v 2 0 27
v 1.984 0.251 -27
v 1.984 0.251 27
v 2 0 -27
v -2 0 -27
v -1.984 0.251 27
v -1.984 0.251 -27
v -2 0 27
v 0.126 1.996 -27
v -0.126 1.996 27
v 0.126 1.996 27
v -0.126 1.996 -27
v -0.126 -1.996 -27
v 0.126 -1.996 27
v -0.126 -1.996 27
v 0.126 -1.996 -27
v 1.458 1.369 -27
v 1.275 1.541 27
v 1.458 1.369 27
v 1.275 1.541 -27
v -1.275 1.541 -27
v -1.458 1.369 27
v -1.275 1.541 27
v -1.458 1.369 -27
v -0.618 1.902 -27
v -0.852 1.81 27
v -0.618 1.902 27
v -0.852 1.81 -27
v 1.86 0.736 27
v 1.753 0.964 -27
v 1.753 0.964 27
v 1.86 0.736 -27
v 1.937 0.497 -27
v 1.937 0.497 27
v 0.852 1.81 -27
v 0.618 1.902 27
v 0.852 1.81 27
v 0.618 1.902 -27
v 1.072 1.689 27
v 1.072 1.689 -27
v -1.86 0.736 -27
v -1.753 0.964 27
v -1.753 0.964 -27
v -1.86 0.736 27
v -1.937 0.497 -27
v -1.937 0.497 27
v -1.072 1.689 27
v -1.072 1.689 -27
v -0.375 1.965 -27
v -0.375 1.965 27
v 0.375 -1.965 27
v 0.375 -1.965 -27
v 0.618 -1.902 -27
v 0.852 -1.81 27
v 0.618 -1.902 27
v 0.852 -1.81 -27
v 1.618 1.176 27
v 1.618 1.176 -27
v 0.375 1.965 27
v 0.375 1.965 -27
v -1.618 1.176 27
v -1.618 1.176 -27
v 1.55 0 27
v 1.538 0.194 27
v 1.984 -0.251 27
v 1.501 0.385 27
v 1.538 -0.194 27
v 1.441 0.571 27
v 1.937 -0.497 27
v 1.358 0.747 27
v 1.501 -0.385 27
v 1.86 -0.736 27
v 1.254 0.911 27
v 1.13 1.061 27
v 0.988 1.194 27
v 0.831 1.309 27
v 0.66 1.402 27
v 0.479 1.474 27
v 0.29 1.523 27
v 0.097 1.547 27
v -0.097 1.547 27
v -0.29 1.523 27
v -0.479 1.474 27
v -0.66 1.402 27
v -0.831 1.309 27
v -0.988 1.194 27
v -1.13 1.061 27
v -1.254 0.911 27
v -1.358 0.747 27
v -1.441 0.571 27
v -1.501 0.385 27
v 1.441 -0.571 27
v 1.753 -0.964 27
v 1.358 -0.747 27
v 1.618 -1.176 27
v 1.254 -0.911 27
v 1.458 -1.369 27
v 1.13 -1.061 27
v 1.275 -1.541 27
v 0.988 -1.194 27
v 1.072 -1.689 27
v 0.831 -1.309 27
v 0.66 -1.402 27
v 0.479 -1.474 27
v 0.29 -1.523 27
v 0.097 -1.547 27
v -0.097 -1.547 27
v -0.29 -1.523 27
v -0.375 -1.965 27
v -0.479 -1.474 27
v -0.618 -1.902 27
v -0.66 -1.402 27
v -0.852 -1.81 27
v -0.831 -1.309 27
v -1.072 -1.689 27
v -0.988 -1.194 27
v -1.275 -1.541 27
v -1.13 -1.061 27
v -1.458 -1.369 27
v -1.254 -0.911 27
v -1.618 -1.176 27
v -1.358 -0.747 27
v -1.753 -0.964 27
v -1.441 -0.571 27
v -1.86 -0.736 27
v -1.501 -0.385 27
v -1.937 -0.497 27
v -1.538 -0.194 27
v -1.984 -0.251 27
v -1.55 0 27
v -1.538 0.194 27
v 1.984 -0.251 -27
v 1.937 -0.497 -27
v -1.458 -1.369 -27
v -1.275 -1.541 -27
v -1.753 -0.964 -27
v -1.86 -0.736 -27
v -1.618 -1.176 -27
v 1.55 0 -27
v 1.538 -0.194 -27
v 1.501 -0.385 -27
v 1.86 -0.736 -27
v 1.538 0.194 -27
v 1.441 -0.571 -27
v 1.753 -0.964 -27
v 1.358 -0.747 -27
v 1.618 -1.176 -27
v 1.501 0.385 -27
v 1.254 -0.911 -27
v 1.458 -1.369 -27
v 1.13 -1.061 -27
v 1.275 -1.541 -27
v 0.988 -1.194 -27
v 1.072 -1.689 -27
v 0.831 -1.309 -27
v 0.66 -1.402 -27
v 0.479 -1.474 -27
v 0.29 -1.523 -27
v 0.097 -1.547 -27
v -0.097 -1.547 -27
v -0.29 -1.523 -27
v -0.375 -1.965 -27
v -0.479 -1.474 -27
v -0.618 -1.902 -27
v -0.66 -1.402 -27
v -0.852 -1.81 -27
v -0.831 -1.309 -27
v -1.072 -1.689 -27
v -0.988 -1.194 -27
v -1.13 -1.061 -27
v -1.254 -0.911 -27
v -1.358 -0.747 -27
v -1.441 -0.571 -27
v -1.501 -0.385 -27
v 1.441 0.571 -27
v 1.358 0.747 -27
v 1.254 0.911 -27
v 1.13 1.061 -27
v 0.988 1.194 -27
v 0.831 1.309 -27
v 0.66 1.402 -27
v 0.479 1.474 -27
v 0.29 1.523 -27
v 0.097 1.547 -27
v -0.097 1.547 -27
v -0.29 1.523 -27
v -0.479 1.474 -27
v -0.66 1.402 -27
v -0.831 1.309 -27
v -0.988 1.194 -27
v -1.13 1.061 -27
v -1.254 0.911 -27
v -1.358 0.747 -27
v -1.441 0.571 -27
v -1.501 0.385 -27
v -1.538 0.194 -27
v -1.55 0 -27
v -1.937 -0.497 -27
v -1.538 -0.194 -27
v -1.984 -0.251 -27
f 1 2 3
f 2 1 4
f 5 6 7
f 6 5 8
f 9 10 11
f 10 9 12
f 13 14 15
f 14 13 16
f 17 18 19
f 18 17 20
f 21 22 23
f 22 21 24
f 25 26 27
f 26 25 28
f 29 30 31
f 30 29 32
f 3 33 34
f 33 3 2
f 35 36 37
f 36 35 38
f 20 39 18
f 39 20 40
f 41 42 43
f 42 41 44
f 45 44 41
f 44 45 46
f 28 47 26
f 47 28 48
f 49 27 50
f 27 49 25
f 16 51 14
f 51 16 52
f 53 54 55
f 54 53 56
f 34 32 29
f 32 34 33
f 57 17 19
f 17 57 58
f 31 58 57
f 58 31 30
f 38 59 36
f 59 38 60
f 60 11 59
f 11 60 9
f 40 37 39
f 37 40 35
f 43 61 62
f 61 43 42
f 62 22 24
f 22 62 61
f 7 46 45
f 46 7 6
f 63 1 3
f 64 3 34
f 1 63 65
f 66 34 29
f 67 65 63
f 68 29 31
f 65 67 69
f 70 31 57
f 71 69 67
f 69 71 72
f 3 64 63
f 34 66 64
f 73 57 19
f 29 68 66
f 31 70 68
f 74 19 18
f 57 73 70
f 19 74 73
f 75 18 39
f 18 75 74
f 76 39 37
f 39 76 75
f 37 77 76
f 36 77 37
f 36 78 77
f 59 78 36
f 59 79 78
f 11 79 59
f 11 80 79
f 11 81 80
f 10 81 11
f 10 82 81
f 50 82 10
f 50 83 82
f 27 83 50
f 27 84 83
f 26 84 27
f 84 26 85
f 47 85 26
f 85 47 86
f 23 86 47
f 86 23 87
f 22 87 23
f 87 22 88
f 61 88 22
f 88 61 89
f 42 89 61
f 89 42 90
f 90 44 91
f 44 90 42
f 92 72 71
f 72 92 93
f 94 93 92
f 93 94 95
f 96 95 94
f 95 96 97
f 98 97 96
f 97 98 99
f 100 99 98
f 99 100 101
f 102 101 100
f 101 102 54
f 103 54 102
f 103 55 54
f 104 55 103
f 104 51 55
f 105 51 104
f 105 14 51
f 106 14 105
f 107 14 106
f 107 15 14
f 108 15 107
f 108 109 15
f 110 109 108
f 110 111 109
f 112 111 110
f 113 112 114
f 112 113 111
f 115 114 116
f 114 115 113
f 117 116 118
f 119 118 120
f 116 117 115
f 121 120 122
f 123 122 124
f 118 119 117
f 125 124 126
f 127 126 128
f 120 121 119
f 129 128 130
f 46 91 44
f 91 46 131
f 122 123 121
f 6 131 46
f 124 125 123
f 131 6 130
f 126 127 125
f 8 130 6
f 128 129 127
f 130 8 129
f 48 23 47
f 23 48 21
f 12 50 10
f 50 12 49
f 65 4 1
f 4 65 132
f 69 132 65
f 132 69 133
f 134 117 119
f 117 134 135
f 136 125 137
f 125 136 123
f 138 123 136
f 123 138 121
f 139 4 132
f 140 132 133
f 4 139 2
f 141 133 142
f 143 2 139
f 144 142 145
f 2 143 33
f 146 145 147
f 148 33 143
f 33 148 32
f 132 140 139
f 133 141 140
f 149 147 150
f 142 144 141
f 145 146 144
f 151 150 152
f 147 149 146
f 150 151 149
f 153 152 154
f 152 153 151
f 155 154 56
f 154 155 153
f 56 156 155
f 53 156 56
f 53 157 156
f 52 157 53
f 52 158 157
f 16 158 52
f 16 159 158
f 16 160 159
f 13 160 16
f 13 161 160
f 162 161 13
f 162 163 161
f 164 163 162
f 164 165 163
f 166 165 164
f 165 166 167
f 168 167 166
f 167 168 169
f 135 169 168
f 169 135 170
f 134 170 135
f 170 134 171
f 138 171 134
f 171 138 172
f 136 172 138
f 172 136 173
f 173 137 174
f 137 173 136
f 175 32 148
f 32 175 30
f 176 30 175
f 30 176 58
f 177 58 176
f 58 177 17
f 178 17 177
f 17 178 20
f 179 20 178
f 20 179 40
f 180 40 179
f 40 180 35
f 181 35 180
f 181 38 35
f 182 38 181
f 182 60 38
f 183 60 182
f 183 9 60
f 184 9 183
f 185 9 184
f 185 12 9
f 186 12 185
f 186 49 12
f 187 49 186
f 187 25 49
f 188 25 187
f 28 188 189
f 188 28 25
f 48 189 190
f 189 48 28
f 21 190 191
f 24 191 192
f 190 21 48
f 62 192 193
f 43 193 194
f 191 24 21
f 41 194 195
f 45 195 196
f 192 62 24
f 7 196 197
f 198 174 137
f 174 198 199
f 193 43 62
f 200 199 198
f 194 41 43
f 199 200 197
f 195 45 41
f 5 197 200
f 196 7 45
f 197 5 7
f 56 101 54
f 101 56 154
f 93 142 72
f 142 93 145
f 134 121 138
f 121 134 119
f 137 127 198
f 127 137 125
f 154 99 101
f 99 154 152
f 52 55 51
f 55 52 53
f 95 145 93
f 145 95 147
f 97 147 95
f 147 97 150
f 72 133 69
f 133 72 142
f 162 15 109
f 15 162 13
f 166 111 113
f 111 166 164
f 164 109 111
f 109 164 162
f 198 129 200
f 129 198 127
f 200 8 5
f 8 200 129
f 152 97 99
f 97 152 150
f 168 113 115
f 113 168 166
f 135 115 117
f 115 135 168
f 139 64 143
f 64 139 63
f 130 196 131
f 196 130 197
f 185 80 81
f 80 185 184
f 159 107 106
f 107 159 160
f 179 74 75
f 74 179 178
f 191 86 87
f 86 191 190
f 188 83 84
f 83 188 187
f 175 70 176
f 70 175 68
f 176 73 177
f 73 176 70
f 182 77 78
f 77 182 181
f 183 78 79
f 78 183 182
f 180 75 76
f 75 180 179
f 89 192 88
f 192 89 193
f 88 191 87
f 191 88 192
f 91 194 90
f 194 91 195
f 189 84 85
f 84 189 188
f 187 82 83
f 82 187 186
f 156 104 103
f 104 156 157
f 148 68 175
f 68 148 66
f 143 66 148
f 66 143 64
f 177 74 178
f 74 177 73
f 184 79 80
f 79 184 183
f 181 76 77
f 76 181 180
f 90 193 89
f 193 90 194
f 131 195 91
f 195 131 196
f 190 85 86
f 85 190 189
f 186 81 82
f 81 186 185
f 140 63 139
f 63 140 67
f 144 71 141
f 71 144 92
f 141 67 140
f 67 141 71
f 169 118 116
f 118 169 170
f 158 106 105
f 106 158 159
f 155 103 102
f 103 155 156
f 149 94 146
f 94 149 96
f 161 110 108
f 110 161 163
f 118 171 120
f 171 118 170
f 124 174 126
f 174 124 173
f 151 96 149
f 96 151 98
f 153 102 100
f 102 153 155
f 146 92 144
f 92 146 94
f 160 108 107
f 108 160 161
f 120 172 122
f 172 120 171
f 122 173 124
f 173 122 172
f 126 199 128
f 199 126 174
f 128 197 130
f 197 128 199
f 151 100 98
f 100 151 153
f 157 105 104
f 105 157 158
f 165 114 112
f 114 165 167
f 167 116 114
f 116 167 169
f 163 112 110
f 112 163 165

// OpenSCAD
$fn = 50;


difference() {
	union() {
		translate(v = [0, 0, -27.0000000000]) {
			cylinder(h = 54, r = 2.0000000000);
		}
	}
	union() {
		translate(v = [0, 0, -100.0000000000]) {
			cylinder(h = 200, r = 1.5500000000);
		}
	}
}
